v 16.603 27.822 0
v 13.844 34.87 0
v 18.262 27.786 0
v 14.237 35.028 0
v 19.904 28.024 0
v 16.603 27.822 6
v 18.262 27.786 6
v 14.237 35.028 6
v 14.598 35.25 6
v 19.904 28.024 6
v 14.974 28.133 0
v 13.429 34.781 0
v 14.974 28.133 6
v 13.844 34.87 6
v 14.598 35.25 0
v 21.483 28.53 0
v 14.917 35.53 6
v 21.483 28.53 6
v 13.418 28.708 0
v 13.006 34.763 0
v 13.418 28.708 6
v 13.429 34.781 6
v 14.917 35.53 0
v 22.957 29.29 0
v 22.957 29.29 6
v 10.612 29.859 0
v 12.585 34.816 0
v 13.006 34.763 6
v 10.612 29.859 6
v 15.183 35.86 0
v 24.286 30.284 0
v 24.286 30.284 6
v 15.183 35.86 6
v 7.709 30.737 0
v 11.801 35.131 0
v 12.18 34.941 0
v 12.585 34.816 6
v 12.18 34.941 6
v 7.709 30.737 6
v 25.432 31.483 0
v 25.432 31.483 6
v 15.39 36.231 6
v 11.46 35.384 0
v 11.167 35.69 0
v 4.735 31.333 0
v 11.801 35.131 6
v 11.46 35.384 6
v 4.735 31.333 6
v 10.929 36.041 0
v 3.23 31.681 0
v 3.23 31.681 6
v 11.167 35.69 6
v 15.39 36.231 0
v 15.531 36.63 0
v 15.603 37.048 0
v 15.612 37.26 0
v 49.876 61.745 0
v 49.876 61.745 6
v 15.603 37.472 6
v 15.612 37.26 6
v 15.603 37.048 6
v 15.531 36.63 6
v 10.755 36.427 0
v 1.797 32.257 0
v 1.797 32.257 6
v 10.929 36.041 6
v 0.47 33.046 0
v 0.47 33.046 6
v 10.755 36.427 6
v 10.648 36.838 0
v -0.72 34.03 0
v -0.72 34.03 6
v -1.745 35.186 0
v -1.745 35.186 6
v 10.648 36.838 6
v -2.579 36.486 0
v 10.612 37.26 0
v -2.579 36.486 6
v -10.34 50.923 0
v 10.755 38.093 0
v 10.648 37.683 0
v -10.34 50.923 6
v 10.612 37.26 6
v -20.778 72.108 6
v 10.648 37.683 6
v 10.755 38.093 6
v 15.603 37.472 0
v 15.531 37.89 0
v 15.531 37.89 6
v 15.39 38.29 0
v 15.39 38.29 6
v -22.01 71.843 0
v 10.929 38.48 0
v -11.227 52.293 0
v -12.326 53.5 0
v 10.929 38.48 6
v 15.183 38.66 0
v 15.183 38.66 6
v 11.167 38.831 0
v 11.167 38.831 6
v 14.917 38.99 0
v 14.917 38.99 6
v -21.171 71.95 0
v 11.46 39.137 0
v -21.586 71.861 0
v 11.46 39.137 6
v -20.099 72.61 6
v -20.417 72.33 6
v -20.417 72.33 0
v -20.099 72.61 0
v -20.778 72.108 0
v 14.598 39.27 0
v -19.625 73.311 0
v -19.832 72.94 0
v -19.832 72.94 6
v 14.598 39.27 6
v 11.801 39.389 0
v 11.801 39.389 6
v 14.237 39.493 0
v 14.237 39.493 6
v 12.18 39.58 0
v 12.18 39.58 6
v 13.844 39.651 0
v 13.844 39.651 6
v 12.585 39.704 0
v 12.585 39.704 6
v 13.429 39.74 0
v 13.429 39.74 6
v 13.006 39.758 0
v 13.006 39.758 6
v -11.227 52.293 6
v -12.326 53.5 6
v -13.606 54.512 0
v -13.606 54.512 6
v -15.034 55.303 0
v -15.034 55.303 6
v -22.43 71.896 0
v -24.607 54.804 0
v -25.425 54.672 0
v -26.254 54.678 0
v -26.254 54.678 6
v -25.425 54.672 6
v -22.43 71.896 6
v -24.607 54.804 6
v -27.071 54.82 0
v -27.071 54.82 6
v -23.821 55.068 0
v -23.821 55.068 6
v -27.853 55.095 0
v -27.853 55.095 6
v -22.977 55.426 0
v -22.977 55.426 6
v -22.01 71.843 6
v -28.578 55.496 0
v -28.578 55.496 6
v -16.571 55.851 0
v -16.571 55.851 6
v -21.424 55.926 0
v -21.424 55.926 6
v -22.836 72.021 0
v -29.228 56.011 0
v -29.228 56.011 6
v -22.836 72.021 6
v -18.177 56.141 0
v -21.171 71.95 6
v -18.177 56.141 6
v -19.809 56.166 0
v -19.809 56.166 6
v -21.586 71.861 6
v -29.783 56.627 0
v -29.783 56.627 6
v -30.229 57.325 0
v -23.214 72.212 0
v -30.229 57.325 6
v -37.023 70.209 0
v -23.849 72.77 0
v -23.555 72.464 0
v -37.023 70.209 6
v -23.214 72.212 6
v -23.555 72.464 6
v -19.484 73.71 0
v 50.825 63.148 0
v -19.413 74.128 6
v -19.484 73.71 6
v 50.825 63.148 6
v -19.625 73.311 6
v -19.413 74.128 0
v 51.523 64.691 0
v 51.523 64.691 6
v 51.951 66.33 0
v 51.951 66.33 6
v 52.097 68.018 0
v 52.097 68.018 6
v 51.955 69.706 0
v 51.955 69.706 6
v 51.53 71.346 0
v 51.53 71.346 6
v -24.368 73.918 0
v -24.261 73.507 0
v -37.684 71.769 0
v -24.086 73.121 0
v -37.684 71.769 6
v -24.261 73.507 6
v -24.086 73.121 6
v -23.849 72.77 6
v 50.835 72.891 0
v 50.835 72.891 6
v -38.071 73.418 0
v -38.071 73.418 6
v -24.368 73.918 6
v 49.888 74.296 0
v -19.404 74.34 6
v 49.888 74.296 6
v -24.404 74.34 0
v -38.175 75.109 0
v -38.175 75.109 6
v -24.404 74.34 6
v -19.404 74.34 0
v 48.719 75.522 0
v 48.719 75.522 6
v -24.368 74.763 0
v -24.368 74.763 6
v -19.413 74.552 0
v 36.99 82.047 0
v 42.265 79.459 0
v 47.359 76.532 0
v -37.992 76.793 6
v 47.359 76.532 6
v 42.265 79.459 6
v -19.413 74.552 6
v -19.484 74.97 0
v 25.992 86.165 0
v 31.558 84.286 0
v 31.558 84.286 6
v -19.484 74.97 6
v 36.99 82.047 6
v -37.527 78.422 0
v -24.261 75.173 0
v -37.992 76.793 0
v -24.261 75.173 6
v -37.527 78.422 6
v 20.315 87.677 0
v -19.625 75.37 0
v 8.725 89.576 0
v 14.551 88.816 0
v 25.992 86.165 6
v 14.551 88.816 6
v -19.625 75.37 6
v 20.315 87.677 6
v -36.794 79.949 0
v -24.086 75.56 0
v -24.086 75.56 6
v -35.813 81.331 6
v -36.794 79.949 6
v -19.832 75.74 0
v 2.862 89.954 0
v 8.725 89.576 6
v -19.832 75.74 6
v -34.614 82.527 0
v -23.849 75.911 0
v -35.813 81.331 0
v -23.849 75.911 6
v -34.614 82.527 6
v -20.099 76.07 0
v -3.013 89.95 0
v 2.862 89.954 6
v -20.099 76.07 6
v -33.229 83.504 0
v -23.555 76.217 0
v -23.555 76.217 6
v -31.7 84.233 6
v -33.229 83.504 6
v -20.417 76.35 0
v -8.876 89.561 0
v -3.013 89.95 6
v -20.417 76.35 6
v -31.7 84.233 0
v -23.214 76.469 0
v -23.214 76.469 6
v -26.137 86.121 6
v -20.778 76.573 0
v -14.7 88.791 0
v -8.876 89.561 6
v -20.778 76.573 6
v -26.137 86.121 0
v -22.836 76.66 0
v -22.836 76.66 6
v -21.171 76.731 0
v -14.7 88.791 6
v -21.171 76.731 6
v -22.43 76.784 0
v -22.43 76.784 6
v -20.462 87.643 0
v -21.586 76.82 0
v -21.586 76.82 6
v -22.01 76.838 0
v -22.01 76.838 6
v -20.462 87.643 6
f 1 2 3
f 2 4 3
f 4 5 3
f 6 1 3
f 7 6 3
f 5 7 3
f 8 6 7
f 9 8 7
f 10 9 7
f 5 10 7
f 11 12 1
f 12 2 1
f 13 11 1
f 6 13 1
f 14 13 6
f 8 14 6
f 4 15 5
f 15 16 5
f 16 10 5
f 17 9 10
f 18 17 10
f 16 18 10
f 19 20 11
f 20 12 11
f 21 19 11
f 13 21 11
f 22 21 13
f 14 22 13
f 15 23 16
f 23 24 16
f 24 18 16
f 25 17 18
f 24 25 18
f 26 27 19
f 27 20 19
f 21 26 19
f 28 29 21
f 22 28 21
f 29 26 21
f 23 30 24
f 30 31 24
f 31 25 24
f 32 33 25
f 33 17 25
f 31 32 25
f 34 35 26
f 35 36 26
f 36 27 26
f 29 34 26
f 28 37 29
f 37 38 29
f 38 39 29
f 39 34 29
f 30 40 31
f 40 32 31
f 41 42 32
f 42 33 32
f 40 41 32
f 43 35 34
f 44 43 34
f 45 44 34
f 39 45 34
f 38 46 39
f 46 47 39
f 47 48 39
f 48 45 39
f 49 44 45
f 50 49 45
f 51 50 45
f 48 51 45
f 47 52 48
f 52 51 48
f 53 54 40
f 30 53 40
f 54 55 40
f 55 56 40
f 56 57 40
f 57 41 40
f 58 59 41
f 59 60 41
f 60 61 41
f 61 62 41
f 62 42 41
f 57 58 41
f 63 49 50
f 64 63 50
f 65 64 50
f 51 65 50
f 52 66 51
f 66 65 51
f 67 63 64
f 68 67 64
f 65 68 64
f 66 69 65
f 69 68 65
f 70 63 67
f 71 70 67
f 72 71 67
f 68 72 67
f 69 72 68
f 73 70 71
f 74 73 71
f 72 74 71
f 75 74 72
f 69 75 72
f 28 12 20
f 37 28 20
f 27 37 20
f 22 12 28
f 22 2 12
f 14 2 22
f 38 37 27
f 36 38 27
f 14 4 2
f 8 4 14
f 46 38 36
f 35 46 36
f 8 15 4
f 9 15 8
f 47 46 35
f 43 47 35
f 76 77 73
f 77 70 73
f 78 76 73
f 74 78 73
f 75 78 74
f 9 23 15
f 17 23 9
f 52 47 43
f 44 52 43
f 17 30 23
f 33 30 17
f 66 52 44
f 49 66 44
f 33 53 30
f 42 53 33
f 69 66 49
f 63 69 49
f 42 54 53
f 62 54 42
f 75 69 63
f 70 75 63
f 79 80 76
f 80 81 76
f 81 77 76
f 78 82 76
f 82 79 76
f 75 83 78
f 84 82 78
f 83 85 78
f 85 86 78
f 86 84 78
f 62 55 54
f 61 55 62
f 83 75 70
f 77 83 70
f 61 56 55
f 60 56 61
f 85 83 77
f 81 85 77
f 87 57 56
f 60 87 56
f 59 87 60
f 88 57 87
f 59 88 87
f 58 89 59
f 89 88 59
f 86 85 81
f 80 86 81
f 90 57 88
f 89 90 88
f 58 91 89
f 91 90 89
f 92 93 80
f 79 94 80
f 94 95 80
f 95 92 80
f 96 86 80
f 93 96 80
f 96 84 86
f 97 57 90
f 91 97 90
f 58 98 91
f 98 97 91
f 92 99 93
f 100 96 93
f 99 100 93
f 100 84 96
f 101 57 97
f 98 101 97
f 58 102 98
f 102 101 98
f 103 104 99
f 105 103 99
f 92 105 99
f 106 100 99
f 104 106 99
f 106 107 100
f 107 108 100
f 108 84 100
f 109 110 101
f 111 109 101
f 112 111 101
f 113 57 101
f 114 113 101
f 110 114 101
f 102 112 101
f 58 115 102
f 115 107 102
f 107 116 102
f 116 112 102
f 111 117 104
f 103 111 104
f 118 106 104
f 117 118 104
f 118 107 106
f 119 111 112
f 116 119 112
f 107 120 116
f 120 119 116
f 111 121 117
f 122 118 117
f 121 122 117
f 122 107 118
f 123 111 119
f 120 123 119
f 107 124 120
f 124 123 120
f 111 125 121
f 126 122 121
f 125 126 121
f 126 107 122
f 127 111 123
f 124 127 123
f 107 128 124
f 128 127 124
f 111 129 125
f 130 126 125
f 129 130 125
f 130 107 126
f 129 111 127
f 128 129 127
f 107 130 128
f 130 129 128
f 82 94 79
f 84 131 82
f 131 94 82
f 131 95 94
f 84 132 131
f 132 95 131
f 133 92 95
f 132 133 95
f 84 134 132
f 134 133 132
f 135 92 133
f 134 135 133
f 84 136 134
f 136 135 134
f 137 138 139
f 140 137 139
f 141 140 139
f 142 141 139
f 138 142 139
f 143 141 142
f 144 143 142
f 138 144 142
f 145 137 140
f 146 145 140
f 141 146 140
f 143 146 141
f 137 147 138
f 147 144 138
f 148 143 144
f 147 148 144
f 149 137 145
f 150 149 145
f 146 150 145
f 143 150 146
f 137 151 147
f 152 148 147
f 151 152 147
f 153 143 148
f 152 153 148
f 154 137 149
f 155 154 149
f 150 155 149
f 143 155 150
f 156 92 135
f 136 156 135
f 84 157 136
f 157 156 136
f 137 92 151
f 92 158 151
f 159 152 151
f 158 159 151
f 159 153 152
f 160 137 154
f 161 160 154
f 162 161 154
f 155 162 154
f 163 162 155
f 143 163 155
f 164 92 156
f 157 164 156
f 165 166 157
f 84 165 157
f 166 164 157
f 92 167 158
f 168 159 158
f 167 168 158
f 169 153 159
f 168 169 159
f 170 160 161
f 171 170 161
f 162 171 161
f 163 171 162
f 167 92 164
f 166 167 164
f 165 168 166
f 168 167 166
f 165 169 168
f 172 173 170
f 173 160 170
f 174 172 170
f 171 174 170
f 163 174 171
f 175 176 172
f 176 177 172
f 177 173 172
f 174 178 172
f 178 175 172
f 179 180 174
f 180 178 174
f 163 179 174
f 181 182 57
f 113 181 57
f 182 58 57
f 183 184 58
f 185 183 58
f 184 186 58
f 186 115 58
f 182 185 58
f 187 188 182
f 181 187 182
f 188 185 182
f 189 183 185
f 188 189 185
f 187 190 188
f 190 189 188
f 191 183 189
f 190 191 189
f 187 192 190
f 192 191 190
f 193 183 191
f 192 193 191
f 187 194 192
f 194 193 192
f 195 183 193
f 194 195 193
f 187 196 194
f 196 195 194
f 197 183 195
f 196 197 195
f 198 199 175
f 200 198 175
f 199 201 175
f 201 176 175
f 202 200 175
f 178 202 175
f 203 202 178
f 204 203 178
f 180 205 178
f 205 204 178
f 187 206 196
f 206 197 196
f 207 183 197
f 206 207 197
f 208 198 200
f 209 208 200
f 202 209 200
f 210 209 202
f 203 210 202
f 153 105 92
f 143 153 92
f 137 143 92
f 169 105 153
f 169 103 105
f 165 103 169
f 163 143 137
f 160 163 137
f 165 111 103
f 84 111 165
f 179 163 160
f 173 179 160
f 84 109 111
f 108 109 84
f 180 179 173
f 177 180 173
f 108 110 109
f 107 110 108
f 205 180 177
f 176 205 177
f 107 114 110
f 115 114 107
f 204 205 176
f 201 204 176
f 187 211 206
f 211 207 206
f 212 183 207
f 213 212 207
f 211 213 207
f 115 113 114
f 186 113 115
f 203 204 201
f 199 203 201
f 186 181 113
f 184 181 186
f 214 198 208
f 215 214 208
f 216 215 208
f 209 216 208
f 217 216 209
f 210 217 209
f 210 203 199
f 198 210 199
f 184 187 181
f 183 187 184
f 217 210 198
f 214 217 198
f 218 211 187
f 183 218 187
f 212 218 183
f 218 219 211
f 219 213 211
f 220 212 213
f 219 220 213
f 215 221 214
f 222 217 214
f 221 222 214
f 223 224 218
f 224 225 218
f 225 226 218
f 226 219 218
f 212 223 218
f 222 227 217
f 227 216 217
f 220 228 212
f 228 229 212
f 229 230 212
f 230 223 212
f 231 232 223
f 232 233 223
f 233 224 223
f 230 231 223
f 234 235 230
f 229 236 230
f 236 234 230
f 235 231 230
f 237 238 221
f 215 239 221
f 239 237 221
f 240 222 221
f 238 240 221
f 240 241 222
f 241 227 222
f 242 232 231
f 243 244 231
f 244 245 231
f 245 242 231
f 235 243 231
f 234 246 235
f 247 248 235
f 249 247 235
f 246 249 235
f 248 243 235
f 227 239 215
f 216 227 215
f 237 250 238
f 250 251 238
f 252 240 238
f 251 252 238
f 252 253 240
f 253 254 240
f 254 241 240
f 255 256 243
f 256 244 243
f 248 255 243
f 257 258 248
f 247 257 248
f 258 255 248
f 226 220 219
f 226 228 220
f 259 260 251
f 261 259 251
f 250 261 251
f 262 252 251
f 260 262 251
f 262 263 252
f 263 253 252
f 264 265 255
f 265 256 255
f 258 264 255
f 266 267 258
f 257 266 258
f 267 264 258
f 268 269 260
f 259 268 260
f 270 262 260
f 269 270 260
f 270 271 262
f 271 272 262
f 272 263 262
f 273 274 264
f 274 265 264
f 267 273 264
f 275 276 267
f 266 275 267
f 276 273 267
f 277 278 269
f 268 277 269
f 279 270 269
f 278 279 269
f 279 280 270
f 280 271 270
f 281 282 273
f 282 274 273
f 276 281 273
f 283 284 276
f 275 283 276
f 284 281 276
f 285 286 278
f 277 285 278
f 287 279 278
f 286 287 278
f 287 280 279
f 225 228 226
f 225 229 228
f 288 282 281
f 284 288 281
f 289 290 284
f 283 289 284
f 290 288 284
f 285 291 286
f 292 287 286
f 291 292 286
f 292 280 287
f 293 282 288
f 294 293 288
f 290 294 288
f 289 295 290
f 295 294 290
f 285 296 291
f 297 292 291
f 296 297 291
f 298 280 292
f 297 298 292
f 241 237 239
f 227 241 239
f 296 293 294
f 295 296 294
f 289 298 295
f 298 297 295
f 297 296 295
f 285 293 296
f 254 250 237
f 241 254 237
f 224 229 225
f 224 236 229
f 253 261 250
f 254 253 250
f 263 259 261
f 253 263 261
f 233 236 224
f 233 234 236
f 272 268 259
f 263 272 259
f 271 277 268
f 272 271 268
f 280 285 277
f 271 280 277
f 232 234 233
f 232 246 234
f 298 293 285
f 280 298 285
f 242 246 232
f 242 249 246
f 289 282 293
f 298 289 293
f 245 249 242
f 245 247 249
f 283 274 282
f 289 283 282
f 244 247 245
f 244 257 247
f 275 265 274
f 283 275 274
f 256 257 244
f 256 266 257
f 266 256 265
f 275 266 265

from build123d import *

# Parameters (mm, degrees)
ESQUISSE2_R        = 2.5
BOSS_EXTRU_1_DEPTH = 6


with BuildPart() as part:
    # Esquisse2 → Boss.-Extru.1 (new body)
    with BuildSketch(Plane.XY):
        with BuildLine():
            Line((-37.02318957, 70.208855809), (-30.229307699, 57.325290719))
            ThreePointArc((-30.229307699, 57.325290719), (-27.467524765, 54.941473247), (-23.821445078, 55.068491485))
            ThreePointArc((-23.821445078, 55.068491485), (-23.400055317, 55.248867963), (-22.977299871, 55.426019978))
            ThreePointArc((-22.977299871, 55.426019978), (-15.791425987, 55.608280441), (-10.339764744, 50.923262614))
            Line((-10.339764744, 50.923262614), (-2.578763956, 36.48608394))
            ThreePointArc((-2.578763956, 36.48608394), (0.469732203, 33.046139596), (4.735009448, 31.333260165))
            ThreePointArc((4.735009448, 31.333260165), (9.170996361, 30.332924896), (13.418131397, 28.707965042))
            ThreePointArc((13.418131397, 28.707965042), (19.90350488, 28.02390195), (25.431548669, 31.483489123))
            Line((25.431548669, 31.483489123), (30.097916289, 37.260311293))
            Line((30.097916289, 37.260311293), (37.702538192, 46.674603521))
            Line((37.702538192, 46.674603521), (49.875769926, 61.74469673))
            ThreePointArc((49.875769926, 61.74469673), (51.954878008, 69.706464375), (47.358753007, 76.532009732))
            ThreePointArc((47.358753007, 76.532009732), (8.724917717, 89.576089504), (-31.699918321, 84.232506661))
            ThreePointArc((-31.699918321, 84.232506661), (-37.526805742, 78.422186754), (-37.02318957, 70.208855809))
        make_face()
        with Locations((13.111796304, 37.260311293)):
            Circle(ESQUISSE2_R, mode=Mode.SUBTRACT)
        with Locations((-21.903504738, 74.340342212)):
            Circle(ESQUISSE2_R, mode=Mode.SUBTRACT)
    extrude(amount=BOSS_EXTRU_1_DEPTH)


solid = part.part
